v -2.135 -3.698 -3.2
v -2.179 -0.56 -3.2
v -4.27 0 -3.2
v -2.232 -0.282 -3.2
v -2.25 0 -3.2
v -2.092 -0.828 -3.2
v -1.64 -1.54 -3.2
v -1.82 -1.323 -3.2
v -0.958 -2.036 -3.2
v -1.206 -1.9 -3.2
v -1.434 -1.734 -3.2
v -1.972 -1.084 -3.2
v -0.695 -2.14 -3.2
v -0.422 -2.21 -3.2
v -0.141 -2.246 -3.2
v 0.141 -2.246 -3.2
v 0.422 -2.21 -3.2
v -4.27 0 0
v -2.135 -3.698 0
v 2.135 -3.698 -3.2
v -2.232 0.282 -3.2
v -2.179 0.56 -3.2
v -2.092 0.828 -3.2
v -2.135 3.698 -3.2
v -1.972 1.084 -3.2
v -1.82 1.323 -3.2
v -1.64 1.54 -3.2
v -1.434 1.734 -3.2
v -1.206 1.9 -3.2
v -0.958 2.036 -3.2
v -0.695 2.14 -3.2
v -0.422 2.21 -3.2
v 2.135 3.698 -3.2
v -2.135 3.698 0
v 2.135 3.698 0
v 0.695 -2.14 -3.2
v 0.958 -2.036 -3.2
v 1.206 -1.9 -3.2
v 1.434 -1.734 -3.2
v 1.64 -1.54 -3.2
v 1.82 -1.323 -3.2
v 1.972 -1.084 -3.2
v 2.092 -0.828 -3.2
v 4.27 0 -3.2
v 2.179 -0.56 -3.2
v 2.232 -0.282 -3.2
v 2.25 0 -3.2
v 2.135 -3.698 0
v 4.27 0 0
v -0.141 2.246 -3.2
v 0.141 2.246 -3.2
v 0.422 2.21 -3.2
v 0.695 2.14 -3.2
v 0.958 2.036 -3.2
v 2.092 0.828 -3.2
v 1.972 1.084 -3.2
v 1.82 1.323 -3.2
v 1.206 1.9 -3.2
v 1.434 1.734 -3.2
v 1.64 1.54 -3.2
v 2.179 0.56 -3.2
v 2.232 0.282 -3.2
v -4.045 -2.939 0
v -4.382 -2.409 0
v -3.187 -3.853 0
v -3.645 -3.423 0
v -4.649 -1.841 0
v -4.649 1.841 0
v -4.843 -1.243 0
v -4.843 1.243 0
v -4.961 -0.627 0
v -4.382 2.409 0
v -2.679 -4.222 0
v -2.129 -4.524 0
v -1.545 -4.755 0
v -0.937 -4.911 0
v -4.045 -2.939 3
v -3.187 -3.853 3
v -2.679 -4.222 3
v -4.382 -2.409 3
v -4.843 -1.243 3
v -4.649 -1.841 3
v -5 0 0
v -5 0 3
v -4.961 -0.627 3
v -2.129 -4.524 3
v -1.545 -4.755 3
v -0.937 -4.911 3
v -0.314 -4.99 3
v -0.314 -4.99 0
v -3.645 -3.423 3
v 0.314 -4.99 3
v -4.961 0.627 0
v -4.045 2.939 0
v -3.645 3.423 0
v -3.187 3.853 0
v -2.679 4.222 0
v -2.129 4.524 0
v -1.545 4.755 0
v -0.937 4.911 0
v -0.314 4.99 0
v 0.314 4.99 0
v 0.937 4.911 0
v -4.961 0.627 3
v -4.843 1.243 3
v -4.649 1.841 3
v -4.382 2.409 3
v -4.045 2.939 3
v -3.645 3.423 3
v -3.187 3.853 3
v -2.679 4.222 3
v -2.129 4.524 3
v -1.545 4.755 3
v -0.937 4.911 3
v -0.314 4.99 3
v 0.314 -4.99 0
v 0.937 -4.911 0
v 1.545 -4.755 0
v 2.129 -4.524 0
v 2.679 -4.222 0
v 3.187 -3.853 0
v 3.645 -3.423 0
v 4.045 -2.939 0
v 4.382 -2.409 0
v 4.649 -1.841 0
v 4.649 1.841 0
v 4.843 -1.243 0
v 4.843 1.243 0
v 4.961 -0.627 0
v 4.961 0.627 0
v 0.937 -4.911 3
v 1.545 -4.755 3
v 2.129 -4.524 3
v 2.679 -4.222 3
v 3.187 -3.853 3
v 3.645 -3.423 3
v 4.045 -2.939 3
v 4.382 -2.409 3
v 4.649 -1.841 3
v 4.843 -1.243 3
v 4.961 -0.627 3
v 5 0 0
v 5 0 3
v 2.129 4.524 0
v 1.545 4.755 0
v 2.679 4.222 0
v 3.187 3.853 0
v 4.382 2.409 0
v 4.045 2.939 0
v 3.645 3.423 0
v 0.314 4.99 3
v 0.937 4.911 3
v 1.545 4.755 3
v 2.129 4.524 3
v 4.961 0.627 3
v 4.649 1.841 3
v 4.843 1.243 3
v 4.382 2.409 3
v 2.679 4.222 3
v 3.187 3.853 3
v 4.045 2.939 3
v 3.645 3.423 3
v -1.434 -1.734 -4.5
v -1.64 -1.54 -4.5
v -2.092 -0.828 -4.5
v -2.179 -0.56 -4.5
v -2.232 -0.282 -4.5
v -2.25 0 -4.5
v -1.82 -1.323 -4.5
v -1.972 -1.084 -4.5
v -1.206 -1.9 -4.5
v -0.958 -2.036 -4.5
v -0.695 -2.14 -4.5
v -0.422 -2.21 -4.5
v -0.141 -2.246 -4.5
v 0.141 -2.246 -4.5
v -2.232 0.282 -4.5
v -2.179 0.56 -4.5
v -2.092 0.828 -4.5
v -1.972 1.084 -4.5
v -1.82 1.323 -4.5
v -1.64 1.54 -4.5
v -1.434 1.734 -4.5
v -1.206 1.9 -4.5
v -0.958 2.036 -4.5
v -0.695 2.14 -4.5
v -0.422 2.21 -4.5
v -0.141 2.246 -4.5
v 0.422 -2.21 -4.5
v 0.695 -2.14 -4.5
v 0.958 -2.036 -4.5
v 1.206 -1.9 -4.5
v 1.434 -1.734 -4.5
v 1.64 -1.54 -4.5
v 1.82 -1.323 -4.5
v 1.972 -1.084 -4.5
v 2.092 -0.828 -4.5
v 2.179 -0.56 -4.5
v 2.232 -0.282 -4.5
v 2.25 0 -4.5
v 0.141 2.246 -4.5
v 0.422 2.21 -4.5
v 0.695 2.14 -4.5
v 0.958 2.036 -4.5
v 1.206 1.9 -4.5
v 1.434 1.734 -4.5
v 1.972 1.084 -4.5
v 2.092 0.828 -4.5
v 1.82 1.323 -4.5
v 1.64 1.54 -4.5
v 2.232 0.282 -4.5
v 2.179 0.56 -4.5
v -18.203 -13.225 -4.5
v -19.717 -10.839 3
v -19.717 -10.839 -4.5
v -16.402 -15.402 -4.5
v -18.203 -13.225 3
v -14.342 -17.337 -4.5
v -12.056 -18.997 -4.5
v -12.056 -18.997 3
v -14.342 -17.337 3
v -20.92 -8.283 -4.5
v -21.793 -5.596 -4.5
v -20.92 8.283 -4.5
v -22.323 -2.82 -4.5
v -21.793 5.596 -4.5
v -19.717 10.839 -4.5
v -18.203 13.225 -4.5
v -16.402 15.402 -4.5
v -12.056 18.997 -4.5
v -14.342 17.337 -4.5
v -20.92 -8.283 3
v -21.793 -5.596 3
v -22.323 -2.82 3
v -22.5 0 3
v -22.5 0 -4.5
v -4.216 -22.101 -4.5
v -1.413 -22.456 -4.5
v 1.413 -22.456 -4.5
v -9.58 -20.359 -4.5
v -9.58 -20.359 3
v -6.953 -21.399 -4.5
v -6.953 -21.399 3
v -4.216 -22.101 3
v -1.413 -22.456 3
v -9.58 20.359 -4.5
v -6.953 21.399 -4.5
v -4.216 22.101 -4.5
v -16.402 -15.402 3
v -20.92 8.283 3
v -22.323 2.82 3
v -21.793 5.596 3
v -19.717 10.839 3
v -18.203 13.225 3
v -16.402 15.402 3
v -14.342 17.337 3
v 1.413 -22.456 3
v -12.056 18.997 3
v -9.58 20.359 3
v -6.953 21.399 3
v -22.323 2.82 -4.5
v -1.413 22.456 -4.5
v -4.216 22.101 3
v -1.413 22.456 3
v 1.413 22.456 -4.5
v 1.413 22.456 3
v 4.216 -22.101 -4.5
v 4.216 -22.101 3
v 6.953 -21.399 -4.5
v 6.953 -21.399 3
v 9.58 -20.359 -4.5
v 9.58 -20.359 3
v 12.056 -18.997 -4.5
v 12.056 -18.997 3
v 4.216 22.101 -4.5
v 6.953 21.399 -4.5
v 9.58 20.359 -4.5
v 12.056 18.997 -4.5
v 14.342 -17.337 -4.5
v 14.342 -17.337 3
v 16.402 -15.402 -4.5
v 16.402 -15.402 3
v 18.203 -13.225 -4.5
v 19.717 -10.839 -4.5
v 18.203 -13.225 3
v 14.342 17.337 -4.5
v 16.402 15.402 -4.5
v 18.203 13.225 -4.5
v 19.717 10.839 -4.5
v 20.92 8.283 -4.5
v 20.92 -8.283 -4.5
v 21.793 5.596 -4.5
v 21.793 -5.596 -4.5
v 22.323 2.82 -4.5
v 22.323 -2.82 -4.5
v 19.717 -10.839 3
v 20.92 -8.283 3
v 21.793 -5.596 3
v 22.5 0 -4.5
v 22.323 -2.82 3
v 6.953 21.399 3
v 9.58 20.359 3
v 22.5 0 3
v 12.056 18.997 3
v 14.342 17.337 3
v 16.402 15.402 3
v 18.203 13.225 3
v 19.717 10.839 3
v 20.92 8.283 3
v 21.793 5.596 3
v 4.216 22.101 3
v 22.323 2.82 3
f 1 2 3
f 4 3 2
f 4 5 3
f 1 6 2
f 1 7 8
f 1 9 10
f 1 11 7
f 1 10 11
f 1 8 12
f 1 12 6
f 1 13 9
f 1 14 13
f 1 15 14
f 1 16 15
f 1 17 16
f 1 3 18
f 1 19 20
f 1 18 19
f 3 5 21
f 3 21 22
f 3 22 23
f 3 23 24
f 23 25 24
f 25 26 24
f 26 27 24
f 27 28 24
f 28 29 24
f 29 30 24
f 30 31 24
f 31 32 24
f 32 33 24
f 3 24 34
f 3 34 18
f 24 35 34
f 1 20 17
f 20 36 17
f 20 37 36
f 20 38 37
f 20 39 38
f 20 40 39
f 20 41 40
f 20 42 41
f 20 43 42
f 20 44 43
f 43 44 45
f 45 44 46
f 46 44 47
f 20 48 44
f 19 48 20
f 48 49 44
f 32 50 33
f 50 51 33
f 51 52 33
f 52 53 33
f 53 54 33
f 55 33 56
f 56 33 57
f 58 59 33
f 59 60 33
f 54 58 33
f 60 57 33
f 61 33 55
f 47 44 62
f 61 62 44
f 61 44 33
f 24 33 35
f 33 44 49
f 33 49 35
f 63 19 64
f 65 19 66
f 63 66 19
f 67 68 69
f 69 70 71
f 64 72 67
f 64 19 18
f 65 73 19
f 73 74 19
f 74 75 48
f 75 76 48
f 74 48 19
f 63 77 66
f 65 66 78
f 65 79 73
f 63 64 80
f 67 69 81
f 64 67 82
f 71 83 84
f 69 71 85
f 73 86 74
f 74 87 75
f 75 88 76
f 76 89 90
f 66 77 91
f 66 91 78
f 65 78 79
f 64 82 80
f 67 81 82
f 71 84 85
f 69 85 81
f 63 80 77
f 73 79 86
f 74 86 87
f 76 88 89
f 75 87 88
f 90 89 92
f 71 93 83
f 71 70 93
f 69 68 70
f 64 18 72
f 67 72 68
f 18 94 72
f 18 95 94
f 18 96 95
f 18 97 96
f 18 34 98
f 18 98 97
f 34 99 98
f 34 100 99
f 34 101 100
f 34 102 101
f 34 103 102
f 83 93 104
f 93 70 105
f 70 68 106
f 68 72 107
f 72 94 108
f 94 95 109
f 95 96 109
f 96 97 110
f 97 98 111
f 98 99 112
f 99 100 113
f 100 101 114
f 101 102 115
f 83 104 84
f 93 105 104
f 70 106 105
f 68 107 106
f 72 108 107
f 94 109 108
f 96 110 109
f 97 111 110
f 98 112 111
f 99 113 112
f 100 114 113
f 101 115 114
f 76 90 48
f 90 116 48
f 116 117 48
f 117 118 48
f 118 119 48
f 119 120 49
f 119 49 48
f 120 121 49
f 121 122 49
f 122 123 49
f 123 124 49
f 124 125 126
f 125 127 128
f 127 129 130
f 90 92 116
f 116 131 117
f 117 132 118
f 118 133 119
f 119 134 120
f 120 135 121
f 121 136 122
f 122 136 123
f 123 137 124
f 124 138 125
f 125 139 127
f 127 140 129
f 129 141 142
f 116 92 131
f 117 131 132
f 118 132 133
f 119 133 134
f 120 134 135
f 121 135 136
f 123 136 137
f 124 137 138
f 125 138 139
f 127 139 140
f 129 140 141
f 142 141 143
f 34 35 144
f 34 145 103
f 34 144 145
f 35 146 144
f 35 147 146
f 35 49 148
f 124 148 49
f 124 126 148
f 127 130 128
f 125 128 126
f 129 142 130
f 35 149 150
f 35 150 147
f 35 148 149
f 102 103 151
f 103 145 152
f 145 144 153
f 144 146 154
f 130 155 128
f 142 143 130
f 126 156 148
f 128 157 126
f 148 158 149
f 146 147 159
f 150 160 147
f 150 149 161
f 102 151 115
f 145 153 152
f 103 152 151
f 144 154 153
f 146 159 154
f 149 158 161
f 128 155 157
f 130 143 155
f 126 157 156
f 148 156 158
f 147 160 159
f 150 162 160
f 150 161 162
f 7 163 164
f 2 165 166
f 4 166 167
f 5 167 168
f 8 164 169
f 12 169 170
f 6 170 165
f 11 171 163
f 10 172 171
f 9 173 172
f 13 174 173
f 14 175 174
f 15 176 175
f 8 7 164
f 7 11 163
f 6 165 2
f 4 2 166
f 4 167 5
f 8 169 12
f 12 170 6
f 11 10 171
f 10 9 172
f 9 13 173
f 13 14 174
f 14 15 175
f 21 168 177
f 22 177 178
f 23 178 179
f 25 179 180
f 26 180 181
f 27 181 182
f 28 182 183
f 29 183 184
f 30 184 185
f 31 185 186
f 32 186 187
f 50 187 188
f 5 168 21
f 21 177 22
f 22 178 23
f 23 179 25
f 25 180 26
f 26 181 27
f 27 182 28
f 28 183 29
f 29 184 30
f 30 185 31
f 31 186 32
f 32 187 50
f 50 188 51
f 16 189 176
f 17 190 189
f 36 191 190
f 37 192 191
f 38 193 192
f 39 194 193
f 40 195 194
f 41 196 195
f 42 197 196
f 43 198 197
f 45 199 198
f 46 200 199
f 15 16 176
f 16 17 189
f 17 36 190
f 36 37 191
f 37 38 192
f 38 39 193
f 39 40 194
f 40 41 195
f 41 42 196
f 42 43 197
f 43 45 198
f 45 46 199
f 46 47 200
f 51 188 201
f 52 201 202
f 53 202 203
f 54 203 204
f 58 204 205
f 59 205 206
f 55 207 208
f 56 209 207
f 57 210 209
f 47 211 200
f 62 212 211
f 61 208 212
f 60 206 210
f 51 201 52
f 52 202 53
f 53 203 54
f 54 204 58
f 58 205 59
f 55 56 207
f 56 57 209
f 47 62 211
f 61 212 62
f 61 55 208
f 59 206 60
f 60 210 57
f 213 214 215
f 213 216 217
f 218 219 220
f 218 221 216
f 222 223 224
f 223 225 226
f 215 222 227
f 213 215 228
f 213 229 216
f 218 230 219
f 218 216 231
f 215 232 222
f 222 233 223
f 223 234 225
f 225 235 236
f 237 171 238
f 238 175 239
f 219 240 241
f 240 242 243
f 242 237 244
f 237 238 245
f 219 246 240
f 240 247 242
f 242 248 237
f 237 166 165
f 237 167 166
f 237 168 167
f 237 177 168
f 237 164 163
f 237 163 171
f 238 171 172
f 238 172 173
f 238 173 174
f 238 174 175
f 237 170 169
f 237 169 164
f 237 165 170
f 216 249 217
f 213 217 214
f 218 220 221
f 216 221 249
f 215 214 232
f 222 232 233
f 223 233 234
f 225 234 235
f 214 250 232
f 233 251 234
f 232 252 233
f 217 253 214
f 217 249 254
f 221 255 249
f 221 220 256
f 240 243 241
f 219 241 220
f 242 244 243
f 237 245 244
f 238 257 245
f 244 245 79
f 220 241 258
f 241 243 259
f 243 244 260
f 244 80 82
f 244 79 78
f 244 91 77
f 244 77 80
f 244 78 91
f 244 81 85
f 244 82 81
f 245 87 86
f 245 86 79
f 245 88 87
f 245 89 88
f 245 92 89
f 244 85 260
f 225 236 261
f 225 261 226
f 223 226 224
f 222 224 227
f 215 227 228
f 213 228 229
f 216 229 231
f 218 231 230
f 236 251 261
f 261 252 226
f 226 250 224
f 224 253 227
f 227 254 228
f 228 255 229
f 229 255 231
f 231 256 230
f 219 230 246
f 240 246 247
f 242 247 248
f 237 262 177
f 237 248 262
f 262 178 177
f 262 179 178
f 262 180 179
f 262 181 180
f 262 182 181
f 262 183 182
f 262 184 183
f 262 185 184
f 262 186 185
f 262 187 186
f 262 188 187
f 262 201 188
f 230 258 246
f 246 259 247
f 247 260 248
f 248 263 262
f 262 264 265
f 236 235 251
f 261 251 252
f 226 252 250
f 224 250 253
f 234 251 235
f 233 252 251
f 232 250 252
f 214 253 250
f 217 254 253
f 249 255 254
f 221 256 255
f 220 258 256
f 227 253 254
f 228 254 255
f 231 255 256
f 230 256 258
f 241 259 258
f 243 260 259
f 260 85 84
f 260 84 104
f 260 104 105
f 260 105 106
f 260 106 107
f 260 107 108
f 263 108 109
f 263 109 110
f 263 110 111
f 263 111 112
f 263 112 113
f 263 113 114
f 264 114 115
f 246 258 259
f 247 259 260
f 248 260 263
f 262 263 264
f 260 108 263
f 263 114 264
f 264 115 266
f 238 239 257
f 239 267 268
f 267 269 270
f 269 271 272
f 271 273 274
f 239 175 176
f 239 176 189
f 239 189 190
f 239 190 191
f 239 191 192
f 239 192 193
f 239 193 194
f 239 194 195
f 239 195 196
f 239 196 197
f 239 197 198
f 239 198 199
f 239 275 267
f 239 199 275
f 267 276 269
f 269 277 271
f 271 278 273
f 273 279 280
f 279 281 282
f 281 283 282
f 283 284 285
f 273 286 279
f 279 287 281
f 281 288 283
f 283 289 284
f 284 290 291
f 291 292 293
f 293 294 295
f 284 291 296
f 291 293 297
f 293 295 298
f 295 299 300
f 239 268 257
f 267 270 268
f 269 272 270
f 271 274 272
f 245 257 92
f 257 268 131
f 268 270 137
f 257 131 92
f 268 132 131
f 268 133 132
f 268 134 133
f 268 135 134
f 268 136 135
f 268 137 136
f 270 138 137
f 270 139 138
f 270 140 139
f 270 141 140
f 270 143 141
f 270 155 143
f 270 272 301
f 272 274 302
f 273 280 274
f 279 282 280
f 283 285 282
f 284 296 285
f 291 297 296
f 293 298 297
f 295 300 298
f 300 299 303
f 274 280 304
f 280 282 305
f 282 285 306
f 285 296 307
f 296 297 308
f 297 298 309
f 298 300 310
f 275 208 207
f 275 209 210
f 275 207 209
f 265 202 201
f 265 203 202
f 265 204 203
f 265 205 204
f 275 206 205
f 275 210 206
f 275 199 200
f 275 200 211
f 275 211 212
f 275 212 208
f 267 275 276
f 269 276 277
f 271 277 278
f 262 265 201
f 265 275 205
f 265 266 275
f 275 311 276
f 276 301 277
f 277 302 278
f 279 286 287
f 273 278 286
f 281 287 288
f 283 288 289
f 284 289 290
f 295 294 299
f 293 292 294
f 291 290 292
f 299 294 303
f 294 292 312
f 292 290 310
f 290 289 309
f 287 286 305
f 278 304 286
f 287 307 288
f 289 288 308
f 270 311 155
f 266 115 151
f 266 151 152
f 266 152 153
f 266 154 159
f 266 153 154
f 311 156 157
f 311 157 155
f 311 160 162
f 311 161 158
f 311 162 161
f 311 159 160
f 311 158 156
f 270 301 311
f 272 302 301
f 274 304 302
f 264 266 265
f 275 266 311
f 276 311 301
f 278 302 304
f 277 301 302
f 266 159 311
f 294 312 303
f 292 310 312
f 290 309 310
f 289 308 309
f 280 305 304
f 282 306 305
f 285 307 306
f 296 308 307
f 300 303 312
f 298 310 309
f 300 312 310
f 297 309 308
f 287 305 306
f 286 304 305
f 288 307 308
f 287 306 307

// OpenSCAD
$fn = 50;

difference() {
	union() {
		translate(v = [0, 0, -4.5]) {
			cylinder(h = 7.5, r = 22.5);
		}
	}
	union() {
		translate(v = [0, 0, 0]) {
			rotate(a = [0, 0, 0]) {
				difference() {
					union() {
						translate(v = [0, 0, -3.2]) {
							linear_extrude(height = 3.2) {
								polygon(points = [[4.2698, 0.0], [2.1349000000000005, 3.697755269078796], [-2.134899999999999, 3.6977552690787965], [-4.2698, 5.228996902999369e-16], [-2.134900000000002, -3.6977552690787956], [2.1348999999999974, -3.697755269078798]]);
							}
						}
					}
					union();
				}
			}
		}
		#cylinder(h = 3, r = 5.0);
		#translate(v = [0, 0, -100.0]) {
			cylinder(h = 200, r = 2.25);
		}
	}
}
